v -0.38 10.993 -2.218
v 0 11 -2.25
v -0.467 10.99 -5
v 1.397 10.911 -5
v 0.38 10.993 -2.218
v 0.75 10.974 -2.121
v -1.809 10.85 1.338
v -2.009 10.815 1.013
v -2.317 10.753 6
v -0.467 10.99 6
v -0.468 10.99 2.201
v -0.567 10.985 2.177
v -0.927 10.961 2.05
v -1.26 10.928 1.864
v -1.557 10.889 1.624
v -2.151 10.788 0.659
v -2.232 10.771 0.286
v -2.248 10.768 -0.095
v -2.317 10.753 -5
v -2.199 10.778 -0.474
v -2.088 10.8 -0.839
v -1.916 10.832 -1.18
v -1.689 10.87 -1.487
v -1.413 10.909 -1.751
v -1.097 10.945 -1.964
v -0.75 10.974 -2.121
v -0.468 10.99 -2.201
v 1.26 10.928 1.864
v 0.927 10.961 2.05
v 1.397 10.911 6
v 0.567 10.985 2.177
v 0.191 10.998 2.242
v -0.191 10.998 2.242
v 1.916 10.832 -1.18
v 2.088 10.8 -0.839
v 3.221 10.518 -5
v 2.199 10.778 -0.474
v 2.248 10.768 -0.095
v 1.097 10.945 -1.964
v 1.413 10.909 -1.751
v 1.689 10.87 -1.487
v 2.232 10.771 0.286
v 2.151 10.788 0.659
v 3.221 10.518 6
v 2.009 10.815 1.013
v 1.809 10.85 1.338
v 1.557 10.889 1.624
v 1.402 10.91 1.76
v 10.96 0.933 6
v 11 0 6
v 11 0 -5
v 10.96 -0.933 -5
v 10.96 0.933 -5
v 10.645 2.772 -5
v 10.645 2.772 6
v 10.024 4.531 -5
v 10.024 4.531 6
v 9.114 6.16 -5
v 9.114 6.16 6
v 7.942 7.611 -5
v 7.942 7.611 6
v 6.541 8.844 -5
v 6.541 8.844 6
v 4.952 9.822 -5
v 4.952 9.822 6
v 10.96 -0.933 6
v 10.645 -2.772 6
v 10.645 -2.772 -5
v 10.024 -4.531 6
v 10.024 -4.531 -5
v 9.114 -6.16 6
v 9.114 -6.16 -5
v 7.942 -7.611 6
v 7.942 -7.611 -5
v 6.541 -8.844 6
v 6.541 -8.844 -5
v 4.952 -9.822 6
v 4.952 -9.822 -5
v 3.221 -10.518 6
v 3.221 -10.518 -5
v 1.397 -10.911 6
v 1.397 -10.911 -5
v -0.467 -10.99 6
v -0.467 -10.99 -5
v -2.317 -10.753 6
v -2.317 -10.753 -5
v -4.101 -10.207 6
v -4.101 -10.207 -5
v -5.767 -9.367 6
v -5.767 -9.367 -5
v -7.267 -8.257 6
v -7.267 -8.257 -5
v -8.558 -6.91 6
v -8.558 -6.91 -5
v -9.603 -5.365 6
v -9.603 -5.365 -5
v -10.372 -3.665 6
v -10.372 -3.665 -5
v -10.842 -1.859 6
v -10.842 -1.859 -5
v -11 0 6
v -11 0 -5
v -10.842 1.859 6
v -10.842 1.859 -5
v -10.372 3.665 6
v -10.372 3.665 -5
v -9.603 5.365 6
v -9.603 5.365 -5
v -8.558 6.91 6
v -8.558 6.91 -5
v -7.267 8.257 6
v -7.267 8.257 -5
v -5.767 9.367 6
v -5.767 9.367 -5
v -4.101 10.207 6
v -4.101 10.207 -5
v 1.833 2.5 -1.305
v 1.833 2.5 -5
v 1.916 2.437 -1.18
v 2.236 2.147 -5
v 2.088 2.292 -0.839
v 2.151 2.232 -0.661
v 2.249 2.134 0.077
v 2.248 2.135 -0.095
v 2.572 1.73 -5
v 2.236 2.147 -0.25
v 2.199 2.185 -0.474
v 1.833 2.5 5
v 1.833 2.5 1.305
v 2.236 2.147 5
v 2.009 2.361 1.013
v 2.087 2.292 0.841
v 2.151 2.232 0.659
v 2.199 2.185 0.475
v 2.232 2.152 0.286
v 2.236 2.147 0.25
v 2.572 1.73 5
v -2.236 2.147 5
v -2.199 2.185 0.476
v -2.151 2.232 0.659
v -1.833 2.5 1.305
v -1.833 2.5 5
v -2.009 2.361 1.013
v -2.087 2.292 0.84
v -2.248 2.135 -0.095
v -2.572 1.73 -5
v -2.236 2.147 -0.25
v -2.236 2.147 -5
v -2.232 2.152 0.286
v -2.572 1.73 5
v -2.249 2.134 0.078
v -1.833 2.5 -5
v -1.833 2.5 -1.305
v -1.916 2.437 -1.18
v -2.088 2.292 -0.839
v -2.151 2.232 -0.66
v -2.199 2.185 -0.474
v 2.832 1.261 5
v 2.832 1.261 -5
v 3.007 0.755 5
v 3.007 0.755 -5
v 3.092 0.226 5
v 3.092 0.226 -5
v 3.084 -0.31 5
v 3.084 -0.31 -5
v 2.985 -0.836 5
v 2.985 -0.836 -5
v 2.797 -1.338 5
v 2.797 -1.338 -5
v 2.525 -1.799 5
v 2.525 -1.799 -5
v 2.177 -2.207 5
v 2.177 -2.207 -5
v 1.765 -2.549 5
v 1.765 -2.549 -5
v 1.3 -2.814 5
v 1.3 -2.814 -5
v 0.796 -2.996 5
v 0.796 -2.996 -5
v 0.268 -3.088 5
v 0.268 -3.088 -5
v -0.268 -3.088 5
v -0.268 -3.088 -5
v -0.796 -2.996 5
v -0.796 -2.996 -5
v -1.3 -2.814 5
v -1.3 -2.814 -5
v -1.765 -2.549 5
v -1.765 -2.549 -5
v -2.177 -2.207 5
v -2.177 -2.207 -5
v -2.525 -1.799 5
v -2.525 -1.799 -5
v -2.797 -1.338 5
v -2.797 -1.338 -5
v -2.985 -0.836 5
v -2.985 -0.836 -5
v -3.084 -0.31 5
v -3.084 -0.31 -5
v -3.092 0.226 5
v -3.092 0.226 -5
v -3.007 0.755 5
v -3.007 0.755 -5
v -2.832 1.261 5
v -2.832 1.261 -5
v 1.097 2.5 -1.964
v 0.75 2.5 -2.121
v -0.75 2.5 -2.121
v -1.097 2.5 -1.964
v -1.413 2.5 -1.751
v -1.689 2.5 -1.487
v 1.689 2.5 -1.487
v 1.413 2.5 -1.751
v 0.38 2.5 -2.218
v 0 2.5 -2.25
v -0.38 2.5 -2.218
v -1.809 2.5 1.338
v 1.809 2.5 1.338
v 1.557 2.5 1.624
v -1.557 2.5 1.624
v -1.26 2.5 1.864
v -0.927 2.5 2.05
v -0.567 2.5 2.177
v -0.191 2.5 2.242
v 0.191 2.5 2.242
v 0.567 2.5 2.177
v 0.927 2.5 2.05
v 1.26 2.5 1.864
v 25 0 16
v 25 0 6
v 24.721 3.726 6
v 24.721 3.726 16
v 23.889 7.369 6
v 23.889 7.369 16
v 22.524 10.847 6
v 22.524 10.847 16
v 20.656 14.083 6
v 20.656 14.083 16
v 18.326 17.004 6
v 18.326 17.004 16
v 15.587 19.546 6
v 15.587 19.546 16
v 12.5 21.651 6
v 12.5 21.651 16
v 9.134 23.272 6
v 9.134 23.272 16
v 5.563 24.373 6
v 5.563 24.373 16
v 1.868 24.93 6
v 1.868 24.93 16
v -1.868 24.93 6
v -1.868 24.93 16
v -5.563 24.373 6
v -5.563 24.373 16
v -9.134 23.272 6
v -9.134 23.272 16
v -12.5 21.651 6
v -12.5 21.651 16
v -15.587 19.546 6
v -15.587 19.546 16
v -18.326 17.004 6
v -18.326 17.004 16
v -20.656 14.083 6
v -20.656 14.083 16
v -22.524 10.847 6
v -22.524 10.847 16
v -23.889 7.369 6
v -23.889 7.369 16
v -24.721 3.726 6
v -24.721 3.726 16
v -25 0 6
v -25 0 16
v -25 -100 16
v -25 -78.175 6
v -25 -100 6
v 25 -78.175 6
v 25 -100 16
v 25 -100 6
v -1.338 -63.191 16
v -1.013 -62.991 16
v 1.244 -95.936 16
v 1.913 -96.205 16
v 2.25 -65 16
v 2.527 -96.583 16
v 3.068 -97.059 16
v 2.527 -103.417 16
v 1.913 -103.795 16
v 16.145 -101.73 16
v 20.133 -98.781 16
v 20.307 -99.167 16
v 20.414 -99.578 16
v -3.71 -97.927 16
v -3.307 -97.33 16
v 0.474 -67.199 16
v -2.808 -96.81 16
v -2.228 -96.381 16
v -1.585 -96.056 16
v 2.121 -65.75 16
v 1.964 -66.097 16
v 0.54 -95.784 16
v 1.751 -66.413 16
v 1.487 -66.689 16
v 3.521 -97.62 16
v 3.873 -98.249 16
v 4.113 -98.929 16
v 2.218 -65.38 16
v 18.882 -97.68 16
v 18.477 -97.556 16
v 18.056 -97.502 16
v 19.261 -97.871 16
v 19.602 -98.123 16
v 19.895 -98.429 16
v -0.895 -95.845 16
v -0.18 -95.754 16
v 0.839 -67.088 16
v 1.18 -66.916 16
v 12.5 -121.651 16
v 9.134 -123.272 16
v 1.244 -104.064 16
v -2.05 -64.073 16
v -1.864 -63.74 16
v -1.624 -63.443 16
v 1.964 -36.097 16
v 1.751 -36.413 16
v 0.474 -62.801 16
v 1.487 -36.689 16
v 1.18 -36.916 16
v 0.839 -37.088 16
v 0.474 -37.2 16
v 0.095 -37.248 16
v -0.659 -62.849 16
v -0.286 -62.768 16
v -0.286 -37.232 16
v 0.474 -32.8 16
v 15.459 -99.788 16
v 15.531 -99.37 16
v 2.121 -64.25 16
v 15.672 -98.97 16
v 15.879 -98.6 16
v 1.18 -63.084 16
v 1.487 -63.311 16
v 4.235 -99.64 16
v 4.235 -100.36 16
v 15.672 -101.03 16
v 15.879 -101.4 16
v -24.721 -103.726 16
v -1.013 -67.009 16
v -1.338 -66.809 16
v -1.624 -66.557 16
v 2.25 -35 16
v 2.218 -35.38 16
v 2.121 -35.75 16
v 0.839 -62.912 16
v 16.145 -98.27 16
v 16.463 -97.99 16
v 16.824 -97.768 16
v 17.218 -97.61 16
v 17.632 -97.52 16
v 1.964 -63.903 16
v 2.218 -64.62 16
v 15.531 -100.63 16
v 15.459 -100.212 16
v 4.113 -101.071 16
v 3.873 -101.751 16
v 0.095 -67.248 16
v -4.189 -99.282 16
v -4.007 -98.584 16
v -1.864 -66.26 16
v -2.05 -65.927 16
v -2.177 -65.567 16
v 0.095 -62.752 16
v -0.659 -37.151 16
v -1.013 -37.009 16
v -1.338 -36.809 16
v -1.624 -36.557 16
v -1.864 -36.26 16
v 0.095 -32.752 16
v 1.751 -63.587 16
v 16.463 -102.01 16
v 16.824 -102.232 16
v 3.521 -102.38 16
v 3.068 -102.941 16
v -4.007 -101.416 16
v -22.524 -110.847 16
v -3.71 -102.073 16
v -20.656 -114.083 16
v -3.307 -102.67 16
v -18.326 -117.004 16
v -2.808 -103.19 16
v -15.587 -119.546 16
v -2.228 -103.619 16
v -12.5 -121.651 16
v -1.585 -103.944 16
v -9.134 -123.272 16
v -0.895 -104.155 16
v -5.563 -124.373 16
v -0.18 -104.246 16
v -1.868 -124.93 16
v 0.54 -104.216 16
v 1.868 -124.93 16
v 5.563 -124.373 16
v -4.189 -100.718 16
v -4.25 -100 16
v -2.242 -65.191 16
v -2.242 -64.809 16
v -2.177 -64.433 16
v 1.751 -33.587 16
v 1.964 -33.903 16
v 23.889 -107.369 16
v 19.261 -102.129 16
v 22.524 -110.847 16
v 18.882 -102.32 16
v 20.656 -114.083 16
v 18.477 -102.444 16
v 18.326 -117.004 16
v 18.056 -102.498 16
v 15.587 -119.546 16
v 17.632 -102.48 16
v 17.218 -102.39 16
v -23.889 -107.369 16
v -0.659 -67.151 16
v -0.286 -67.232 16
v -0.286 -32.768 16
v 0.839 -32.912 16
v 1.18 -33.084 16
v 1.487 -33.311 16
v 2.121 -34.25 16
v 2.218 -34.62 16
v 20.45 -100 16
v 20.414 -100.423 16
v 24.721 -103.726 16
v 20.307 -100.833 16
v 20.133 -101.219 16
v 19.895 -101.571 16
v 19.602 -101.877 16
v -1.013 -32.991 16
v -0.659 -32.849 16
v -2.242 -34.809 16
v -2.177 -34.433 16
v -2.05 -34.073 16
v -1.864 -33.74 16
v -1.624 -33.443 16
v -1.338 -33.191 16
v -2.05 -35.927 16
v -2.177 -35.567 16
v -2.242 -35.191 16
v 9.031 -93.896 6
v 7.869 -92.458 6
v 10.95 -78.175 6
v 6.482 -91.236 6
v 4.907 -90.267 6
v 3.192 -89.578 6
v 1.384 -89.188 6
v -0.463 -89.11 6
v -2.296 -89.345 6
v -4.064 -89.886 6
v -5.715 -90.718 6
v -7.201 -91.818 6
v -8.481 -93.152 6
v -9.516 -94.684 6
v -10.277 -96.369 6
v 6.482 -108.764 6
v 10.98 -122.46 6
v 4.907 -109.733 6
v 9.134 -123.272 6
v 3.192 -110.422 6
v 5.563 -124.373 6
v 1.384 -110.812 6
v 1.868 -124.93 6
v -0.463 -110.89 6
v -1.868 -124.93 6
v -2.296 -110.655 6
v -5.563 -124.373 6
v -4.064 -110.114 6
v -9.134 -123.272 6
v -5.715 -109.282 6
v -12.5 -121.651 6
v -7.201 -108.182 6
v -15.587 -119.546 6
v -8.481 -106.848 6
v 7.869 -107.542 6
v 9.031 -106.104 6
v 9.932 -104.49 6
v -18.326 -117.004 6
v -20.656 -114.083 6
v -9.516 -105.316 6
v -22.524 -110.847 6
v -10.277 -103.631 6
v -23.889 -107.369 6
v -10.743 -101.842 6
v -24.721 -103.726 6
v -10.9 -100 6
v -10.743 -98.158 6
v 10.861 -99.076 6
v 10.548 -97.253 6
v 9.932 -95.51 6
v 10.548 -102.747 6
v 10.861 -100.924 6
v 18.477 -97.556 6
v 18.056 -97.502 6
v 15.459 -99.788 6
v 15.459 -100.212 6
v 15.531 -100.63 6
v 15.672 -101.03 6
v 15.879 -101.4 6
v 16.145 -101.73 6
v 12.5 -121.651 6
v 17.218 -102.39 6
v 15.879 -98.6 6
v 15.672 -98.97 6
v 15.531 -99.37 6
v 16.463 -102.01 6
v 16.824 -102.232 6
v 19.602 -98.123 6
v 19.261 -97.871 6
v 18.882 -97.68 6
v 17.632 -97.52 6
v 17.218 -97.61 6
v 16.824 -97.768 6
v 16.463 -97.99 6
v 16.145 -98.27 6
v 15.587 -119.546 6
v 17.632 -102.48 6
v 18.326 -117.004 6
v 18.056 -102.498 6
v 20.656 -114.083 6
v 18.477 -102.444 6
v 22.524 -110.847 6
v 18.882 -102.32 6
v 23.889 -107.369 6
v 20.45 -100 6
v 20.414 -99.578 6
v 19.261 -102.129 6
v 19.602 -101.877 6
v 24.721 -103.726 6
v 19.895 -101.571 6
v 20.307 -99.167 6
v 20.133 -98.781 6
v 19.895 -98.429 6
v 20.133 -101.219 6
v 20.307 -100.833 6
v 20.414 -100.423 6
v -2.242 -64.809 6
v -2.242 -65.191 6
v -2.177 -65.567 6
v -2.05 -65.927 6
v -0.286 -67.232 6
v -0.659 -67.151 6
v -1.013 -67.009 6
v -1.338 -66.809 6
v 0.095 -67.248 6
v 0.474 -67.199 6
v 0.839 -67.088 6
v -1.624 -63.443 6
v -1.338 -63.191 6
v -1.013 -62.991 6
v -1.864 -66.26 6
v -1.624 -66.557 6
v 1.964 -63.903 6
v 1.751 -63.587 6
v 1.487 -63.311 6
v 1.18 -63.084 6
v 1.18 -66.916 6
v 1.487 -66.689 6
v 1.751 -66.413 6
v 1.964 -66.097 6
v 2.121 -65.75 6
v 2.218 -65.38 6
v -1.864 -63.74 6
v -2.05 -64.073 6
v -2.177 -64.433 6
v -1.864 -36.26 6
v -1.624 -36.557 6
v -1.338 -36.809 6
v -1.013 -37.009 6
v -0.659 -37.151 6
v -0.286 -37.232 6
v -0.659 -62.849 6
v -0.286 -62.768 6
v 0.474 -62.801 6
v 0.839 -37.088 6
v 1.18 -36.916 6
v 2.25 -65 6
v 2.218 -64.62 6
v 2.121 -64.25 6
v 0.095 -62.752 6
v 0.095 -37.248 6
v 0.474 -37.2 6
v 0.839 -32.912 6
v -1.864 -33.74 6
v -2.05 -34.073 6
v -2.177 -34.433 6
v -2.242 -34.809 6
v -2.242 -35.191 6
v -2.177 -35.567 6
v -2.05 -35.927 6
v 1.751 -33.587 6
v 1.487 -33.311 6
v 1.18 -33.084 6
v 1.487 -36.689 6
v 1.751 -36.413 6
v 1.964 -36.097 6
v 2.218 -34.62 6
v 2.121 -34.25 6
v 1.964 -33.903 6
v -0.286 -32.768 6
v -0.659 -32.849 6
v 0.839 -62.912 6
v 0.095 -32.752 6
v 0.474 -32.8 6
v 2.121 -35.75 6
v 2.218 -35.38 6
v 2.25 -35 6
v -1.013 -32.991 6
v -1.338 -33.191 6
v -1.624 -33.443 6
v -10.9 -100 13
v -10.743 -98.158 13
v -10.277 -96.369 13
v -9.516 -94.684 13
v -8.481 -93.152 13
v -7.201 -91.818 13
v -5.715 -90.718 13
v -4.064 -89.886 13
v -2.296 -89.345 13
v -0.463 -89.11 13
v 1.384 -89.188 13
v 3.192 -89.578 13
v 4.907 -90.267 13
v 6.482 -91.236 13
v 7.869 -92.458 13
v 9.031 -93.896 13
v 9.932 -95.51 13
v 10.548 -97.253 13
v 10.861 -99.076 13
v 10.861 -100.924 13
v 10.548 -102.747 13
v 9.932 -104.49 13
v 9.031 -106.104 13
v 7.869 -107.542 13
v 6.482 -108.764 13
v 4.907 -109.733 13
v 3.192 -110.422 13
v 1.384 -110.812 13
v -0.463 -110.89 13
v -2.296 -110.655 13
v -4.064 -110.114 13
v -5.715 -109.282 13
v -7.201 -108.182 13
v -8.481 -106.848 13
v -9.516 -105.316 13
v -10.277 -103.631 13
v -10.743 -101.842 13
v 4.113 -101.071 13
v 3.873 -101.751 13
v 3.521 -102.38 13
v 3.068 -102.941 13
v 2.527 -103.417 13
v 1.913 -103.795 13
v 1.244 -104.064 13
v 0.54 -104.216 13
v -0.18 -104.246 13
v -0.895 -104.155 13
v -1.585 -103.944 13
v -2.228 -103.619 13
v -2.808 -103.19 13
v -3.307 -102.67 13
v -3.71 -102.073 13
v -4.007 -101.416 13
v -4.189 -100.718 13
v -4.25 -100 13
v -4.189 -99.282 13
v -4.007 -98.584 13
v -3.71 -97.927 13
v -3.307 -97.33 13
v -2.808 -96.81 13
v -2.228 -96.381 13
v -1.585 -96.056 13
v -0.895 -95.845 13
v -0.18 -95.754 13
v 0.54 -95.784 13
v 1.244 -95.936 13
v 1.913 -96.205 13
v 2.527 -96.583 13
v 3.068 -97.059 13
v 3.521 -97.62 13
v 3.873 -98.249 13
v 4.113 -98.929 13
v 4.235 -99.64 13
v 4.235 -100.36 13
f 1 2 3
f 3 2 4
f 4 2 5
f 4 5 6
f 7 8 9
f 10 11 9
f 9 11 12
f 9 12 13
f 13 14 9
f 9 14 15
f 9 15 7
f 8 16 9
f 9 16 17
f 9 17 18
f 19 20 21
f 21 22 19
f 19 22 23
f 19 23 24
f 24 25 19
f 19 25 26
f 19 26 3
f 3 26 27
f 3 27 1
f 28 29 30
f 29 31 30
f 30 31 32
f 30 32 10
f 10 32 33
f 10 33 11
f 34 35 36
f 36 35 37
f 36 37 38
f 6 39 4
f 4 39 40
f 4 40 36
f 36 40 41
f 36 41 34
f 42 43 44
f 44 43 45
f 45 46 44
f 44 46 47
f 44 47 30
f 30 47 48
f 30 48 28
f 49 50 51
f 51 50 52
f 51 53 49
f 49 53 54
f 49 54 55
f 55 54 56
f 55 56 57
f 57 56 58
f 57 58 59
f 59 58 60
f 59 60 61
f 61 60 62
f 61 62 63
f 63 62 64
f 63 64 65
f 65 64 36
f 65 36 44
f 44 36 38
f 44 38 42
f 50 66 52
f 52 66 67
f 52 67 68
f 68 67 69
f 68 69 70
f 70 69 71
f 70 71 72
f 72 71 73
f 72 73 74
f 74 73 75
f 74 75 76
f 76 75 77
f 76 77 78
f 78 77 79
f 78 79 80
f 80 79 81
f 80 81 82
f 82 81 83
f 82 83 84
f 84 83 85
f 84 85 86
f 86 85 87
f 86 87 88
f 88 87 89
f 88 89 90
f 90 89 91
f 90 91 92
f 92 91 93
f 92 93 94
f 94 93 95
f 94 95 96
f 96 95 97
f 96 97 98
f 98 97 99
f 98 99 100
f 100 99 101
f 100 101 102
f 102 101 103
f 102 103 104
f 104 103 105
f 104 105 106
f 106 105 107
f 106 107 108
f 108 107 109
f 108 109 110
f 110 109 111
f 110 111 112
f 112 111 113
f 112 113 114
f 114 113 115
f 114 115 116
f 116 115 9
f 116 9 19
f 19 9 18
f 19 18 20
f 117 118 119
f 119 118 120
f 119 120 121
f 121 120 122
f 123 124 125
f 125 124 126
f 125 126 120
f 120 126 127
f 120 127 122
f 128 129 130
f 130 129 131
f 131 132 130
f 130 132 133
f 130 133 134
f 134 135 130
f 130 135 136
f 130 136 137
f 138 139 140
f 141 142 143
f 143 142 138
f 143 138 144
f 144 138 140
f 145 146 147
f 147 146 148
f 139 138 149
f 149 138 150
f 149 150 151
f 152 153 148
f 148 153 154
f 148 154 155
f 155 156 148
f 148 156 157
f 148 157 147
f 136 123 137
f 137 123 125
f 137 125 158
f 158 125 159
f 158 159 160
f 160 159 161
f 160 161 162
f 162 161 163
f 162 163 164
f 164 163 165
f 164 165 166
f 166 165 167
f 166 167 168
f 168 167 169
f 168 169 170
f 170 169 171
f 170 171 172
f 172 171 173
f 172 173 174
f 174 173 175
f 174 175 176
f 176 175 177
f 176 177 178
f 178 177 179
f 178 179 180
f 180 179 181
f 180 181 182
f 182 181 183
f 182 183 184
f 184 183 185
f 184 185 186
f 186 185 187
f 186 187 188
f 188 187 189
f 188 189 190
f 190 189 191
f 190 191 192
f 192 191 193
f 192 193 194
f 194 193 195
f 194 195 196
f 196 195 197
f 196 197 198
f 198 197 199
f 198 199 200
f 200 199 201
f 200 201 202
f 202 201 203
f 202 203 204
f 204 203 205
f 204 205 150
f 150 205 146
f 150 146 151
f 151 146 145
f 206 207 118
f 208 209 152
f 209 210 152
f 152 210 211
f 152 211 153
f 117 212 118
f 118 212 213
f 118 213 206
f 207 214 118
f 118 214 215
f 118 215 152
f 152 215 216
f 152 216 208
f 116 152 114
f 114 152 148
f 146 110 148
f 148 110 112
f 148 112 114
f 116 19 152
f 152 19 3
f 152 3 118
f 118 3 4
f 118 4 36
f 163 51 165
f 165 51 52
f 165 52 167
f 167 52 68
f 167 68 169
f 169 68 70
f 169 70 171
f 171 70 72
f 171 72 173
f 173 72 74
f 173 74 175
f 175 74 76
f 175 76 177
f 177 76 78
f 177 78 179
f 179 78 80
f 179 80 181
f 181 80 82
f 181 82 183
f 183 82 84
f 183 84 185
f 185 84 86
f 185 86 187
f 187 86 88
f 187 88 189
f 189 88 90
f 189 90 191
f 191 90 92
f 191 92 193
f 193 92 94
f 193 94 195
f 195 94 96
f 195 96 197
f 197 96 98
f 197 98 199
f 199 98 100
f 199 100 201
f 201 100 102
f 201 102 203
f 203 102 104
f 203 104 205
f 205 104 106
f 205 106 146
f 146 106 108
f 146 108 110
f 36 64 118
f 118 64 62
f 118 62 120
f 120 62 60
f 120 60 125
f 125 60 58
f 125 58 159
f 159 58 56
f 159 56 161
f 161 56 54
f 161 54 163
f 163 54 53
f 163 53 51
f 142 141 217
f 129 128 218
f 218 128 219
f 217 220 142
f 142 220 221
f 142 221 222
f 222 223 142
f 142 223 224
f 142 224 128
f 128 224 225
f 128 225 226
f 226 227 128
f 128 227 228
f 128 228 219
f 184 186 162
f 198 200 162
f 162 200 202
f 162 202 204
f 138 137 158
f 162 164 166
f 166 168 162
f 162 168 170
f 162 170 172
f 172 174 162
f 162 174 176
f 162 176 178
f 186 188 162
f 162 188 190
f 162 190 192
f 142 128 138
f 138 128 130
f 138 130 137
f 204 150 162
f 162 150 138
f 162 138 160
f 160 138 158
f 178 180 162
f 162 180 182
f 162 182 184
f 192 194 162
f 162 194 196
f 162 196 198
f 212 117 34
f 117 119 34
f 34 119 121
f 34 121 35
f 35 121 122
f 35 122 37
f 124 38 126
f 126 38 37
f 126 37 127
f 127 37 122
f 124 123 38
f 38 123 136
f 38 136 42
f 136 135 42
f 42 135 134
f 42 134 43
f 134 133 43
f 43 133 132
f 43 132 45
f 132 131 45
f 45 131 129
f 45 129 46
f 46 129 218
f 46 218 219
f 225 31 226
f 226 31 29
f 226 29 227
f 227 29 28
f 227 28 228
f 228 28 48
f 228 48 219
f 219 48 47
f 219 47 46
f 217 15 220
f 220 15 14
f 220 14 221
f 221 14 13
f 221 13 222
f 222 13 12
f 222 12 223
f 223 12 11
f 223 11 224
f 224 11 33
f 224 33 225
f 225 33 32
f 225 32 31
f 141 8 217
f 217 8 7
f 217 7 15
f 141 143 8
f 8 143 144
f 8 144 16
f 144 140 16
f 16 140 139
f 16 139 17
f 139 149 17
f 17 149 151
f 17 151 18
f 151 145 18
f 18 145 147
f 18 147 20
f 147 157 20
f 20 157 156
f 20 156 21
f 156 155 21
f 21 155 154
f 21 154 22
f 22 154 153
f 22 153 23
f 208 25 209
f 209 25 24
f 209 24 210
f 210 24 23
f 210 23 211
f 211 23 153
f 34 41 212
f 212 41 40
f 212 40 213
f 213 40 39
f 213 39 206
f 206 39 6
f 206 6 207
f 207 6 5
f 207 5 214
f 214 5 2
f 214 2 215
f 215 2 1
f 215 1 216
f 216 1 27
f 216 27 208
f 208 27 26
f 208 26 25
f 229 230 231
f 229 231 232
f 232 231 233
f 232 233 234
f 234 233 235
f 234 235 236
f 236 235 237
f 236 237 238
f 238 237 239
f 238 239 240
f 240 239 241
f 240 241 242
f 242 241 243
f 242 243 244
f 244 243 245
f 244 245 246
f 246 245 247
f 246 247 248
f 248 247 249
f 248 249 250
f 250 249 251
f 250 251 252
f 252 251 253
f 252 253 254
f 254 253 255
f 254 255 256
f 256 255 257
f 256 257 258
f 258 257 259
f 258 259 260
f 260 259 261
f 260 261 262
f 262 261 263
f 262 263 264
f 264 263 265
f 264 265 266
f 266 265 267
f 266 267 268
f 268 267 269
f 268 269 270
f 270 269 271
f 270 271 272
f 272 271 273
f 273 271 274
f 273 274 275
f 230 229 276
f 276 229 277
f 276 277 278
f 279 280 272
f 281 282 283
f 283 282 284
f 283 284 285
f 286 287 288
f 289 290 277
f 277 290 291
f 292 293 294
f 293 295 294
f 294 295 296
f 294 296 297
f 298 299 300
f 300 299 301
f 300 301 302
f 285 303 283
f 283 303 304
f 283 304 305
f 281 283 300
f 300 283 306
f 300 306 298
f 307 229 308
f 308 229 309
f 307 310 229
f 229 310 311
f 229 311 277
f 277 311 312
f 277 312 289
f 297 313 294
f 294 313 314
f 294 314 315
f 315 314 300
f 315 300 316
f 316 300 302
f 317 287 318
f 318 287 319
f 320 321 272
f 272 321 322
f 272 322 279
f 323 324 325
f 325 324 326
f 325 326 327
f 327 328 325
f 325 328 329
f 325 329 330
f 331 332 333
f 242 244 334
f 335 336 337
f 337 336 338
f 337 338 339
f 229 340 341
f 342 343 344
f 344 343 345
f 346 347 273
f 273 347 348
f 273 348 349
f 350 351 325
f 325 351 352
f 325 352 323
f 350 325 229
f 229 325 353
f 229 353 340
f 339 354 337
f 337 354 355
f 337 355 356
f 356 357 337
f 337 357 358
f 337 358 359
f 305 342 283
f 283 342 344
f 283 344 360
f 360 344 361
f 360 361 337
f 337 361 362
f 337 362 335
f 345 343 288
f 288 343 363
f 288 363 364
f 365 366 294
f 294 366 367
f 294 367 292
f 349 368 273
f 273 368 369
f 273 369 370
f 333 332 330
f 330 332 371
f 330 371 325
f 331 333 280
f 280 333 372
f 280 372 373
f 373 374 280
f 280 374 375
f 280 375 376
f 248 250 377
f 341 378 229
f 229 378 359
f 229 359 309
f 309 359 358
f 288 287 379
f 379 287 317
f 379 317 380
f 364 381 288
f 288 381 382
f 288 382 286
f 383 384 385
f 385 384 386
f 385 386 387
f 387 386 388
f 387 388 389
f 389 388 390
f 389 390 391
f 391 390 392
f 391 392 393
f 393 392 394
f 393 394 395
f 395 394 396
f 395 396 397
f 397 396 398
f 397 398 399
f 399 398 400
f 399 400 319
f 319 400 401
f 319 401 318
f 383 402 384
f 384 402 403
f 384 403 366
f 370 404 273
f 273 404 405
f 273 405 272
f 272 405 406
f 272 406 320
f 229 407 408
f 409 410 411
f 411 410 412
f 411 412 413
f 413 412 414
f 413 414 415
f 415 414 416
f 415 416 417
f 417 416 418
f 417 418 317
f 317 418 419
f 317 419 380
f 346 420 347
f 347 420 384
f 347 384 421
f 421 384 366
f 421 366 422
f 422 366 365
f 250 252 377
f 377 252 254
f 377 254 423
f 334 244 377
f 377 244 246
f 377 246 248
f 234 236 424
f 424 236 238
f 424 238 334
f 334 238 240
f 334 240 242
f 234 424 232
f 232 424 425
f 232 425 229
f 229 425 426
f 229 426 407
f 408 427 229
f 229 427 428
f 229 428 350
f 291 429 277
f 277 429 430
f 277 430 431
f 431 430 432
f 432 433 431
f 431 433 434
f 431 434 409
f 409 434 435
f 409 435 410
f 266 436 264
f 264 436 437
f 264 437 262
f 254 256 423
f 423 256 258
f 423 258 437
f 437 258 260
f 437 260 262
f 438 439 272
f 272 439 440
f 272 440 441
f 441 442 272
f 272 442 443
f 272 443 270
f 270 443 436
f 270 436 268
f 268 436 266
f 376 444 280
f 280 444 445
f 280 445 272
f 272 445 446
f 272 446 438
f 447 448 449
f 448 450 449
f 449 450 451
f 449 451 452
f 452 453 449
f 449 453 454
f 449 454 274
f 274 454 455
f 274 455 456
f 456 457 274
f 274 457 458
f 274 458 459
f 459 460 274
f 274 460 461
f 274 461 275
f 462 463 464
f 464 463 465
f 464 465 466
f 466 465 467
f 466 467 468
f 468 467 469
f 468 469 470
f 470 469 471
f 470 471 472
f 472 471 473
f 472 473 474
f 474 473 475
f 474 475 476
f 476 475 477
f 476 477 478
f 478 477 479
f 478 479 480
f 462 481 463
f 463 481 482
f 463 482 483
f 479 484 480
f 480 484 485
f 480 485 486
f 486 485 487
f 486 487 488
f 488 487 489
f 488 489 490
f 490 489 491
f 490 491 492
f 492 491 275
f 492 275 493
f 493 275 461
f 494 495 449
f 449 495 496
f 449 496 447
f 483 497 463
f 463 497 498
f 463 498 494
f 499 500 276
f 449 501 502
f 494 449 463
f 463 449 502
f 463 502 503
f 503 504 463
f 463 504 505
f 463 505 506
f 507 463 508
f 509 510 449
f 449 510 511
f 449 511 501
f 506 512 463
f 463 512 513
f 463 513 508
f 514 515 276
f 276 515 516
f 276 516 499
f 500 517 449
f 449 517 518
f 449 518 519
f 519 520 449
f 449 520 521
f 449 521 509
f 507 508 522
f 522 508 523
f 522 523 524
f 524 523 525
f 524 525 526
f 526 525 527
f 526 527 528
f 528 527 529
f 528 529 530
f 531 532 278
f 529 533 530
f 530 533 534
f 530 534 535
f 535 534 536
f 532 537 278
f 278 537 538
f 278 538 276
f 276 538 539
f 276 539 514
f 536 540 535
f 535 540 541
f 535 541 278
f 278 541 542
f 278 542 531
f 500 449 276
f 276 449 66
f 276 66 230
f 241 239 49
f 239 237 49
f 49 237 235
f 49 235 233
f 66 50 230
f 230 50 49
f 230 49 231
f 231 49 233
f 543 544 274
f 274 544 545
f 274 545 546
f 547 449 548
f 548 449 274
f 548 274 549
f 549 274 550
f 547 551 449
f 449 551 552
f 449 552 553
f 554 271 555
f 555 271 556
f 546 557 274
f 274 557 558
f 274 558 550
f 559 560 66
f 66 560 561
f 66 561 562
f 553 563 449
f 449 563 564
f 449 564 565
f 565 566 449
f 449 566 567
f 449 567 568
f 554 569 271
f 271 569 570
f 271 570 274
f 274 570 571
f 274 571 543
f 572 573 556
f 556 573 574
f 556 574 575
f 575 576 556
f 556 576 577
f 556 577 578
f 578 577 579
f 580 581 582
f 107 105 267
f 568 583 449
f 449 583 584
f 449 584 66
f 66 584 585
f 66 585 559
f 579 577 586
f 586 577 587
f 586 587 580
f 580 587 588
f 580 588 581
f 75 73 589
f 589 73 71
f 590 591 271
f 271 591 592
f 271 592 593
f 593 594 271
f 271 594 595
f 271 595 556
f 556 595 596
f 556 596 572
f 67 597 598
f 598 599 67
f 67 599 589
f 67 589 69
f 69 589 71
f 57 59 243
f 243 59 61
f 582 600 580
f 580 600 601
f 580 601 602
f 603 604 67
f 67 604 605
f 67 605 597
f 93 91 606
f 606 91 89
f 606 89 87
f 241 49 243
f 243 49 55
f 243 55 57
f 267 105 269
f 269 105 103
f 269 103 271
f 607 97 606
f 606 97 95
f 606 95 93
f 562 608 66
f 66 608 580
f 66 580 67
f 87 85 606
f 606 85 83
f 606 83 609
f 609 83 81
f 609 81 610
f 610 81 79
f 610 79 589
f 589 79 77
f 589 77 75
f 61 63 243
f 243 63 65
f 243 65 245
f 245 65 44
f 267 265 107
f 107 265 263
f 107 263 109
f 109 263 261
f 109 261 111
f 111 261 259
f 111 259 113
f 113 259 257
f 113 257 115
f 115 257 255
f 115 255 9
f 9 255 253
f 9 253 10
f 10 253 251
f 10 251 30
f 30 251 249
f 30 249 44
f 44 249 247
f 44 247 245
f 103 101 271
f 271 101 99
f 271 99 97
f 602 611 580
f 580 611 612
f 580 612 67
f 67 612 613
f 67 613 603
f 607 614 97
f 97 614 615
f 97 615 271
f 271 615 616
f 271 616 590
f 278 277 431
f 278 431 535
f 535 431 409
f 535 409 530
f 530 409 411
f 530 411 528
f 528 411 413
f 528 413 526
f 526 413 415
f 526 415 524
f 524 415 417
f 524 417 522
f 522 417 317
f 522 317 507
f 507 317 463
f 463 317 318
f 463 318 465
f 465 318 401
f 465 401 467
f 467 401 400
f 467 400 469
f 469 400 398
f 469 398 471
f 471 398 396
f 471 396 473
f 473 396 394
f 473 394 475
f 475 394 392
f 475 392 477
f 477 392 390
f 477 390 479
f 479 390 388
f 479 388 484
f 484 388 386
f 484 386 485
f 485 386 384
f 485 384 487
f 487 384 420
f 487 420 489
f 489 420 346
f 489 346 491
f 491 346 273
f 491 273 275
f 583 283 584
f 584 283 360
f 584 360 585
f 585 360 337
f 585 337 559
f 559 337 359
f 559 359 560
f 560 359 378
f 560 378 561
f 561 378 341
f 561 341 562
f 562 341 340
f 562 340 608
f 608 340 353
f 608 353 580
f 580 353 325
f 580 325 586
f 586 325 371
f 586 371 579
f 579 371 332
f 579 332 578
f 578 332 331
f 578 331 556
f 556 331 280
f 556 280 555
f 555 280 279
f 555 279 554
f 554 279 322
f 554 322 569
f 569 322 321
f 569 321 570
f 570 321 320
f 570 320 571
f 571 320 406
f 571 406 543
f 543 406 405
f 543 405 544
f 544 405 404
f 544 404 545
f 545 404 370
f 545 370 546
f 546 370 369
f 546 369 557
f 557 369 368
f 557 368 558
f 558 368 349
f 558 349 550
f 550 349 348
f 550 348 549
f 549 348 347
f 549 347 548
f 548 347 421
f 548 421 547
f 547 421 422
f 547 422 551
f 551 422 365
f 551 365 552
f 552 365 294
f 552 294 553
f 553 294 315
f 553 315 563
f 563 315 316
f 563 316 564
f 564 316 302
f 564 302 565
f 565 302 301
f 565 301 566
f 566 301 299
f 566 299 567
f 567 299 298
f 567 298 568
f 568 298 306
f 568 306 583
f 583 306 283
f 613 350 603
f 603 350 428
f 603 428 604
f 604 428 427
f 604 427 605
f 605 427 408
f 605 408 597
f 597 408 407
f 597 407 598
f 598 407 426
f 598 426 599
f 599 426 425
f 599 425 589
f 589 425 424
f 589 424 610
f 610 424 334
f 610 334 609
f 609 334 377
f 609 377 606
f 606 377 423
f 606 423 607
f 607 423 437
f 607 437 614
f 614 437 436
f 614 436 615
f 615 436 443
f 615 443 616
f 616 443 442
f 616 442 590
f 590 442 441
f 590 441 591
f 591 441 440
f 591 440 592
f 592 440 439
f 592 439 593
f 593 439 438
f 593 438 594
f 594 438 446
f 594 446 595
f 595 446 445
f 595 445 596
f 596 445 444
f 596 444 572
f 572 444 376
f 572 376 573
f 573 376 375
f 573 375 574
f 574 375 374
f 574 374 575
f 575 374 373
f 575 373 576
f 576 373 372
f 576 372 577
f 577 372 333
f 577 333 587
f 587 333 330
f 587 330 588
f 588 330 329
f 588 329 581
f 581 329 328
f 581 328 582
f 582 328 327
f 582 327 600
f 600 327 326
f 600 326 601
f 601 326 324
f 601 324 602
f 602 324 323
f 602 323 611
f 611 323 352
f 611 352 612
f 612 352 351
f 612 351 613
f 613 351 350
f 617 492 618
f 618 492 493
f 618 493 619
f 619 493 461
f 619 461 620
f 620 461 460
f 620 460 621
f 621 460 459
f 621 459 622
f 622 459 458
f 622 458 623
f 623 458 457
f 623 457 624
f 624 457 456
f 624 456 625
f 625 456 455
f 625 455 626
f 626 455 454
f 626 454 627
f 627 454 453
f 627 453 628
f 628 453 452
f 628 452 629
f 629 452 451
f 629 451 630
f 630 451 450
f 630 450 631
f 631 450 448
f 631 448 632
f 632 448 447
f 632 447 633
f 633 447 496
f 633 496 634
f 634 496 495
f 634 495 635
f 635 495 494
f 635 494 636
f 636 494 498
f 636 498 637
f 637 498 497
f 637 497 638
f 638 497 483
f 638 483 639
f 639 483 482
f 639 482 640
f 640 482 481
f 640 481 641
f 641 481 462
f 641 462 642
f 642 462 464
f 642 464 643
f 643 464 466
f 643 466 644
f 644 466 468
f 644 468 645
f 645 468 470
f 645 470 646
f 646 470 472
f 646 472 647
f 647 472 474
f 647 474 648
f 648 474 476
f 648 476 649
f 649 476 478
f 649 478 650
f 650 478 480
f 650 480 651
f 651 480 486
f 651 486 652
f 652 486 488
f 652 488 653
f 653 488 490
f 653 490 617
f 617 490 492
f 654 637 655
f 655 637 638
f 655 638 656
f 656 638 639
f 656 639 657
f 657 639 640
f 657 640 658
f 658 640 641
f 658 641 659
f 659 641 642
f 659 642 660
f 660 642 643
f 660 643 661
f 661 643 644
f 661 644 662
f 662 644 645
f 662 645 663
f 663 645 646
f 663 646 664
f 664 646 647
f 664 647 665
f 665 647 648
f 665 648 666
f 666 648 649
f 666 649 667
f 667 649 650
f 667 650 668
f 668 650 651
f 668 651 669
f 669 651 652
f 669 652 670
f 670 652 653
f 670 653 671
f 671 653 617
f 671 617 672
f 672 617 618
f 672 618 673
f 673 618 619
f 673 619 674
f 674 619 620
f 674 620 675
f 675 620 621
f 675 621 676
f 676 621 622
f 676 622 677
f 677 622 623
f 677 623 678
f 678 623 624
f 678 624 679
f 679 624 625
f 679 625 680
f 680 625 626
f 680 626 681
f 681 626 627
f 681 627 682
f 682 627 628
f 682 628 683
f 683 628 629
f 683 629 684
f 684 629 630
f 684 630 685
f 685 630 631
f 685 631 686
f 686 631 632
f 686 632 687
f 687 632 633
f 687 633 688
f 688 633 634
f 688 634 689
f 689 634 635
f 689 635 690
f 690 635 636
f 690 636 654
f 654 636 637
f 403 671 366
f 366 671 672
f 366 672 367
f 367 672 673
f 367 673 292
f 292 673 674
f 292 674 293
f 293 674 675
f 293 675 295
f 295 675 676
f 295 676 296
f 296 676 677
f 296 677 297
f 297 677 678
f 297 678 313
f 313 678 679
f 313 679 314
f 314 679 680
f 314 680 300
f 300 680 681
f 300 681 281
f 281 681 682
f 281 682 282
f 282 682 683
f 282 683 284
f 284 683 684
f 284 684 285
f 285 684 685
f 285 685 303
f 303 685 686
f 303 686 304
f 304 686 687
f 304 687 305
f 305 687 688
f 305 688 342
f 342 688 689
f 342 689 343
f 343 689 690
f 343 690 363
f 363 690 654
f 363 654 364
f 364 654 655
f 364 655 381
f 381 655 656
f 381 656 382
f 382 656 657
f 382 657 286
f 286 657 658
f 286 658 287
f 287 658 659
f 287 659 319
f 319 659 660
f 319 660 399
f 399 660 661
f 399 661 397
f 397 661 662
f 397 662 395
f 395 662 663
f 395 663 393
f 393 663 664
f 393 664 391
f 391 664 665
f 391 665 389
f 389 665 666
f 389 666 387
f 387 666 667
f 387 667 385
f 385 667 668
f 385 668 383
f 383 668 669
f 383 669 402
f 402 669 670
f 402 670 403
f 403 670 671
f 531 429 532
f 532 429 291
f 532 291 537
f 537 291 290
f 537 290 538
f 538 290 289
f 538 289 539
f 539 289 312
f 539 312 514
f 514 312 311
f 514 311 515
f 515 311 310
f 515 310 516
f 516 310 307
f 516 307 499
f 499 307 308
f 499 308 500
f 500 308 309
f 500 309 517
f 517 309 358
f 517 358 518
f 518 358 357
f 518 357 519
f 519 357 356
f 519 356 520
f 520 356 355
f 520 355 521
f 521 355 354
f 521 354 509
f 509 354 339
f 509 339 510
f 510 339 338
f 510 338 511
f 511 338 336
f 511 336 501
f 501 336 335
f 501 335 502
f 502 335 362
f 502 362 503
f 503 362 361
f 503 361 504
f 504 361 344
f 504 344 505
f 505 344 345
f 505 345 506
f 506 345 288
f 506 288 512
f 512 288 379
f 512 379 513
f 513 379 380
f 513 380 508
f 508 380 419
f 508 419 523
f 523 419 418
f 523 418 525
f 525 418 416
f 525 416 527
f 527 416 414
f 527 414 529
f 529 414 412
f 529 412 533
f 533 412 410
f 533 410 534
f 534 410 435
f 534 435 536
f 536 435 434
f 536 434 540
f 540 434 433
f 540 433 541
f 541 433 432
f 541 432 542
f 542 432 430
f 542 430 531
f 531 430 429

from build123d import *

# Parameters (mm, degrees)
CROQUIS1_R                   = 11
SALIENTE_EXTRUIR1_DEPTH      = 5
SALIENTE_EXTRUIR2_START      = 6
CROQUIS2_R                   = 11
SALIENTE_EXTRUIR2_DEPTH      = 6
CROQUIS3_R                   = 2.25
CORTAR_EXTRUIR1_DEPTH        = 20.052558883
SALIENTE_EXTRUIR3_DEPTH      = 5
SALIENTE_EXTRUIR3_DEPTH_BACK = 5
SALIENTE_EXTRUIR4_DEPTH      = 10
CROQUIS6_R                   = 2.25
CORTAR_EXTRUIR2_DEPTH        = 130.193653111
CROQUIS7_R                   = 10.9
CORTAR_EXTRUIR3_DEPTH        = 7
CROQUIS8_R                   = 4.25
CORTAR_EXTRUIR4_DEPTH        = 129.740048173
CROQUIS9_R                   = 2.5
CORTAR_EXTRUIR5_DEPTH        = 130.193653111


with BuildPart() as part:
    # Croquis1 → Saliente-Extruir1 (new, symmetric)
    with BuildSketch(Plane.XY):
        Circle(CROQUIS1_R)
        with BuildLine():
            Line((1.833030278, 2.5), (-1.833030278, 2.5))
            ThreePointArc((-1.833030278, 2.5), (0, -3.1), (1.833030278, 2.5))
        make_face(mode=Mode.SUBTRACT)
    extrude(amount=SALIENTE_EXTRUIR1_DEPTH, both=True)

    # Croquis2 → Saliente-Extruir2 (add)
    with BuildSketch(Plane.XY.offset(5).offset(SALIENTE_EXTRUIR2_START)):
        Circle(CROQUIS2_R)
    extrude(amount=-SALIENTE_EXTRUIR2_DEPTH)

    # Croquis3 → Cortar-Extruir1 (cut, through all)
    with BuildSketch(Plane(origin=(0, 0, 0), x_dir=(1, 0, 0), z_dir=(0, 1, 0))):
        with Locations(Location((0, 0, 0), (0, 0, 90))):
            Circle(CROQUIS3_R)
    extrude(amount=CORTAR_EXTRUIR1_DEPTH, mode=Mode.SUBTRACT)

    # Croquis4 → Saliente-Extruir3 (add, two sides: drawn at the far end of the back side and taken through both)
    with BuildSketch(Plane.XY.offset(11).offset(-SALIENTE_EXTRUIR3_DEPTH_BACK)):
        with BuildLine():
            Line((-25, 0), (-25, -85))
            Line((-25, -85), (25, -85))
            Line((25, -85), (25, 0))
            ThreePointArc((25, 0), (0, 25), (-25, 0))
        make_face()
    extrude(amount=SALIENTE_EXTRUIR3_DEPTH + SALIENTE_EXTRUIR3_DEPTH_BACK)

    # Croquis5 → Saliente-Extruir4 (add)
    with BuildSketch(Plane.XY.offset(16)):
        with BuildLine():
            Line((-25, -100), (-25, -85))
            Line((-25, -85), (25, -85))
            Line((25, -85), (25, -100))
            ThreePointArc((25, -100), (0, -125), (-25, -100))
        make_face()
    extrude(amount=-SALIENTE_EXTRUIR4_DEPTH)

    # Croquis6 → Cortar-Extruir2 (cut, through all)
    with BuildSketch(Plane.XY.offset(16)):
        with Locations((0, -35)):
            Circle(CROQUIS6_R)
        with Locations((0, -65)):
            Circle(CROQUIS6_R)
    extrude(amount=-CORTAR_EXTRUIR2_DEPTH, mode=Mode.SUBTRACT)

    # Croquis7 → Cortar-Extruir3 (cut)
    with BuildSketch(Plane(origin=(0, 0, 6), x_dir=(-1, 0, 0), z_dir=(0, 0, -1))):
        with Locations((0, -100)):
            Circle(CROQUIS7_R)
    extrude(amount=-CORTAR_EXTRUIR3_DEPTH, mode=Mode.SUBTRACT)

    # Croquis8 → Cortar-Extruir4 (cut, through all)
    with BuildSketch(Plane(origin=(0, 0, 13), x_dir=(-1, 0, 0), z_dir=(0, 0, -1))):
        with Locations((0, -100)):
            Circle(CROQUIS8_R)
    extrude(amount=-CORTAR_EXTRUIR4_DEPTH, mode=Mode.SUBTRACT)

    # Croquis9 → Cortar-Extruir5 (cut, through all)
    with BuildSketch(Plane.XY.offset(16)):
        with Locations((17.95, -100)):
            Circle(CROQUIS9_R)
    extrude(amount=-CORTAR_EXTRUIR5_DEPTH, mode=Mode.SUBTRACT)


solid = part.part
